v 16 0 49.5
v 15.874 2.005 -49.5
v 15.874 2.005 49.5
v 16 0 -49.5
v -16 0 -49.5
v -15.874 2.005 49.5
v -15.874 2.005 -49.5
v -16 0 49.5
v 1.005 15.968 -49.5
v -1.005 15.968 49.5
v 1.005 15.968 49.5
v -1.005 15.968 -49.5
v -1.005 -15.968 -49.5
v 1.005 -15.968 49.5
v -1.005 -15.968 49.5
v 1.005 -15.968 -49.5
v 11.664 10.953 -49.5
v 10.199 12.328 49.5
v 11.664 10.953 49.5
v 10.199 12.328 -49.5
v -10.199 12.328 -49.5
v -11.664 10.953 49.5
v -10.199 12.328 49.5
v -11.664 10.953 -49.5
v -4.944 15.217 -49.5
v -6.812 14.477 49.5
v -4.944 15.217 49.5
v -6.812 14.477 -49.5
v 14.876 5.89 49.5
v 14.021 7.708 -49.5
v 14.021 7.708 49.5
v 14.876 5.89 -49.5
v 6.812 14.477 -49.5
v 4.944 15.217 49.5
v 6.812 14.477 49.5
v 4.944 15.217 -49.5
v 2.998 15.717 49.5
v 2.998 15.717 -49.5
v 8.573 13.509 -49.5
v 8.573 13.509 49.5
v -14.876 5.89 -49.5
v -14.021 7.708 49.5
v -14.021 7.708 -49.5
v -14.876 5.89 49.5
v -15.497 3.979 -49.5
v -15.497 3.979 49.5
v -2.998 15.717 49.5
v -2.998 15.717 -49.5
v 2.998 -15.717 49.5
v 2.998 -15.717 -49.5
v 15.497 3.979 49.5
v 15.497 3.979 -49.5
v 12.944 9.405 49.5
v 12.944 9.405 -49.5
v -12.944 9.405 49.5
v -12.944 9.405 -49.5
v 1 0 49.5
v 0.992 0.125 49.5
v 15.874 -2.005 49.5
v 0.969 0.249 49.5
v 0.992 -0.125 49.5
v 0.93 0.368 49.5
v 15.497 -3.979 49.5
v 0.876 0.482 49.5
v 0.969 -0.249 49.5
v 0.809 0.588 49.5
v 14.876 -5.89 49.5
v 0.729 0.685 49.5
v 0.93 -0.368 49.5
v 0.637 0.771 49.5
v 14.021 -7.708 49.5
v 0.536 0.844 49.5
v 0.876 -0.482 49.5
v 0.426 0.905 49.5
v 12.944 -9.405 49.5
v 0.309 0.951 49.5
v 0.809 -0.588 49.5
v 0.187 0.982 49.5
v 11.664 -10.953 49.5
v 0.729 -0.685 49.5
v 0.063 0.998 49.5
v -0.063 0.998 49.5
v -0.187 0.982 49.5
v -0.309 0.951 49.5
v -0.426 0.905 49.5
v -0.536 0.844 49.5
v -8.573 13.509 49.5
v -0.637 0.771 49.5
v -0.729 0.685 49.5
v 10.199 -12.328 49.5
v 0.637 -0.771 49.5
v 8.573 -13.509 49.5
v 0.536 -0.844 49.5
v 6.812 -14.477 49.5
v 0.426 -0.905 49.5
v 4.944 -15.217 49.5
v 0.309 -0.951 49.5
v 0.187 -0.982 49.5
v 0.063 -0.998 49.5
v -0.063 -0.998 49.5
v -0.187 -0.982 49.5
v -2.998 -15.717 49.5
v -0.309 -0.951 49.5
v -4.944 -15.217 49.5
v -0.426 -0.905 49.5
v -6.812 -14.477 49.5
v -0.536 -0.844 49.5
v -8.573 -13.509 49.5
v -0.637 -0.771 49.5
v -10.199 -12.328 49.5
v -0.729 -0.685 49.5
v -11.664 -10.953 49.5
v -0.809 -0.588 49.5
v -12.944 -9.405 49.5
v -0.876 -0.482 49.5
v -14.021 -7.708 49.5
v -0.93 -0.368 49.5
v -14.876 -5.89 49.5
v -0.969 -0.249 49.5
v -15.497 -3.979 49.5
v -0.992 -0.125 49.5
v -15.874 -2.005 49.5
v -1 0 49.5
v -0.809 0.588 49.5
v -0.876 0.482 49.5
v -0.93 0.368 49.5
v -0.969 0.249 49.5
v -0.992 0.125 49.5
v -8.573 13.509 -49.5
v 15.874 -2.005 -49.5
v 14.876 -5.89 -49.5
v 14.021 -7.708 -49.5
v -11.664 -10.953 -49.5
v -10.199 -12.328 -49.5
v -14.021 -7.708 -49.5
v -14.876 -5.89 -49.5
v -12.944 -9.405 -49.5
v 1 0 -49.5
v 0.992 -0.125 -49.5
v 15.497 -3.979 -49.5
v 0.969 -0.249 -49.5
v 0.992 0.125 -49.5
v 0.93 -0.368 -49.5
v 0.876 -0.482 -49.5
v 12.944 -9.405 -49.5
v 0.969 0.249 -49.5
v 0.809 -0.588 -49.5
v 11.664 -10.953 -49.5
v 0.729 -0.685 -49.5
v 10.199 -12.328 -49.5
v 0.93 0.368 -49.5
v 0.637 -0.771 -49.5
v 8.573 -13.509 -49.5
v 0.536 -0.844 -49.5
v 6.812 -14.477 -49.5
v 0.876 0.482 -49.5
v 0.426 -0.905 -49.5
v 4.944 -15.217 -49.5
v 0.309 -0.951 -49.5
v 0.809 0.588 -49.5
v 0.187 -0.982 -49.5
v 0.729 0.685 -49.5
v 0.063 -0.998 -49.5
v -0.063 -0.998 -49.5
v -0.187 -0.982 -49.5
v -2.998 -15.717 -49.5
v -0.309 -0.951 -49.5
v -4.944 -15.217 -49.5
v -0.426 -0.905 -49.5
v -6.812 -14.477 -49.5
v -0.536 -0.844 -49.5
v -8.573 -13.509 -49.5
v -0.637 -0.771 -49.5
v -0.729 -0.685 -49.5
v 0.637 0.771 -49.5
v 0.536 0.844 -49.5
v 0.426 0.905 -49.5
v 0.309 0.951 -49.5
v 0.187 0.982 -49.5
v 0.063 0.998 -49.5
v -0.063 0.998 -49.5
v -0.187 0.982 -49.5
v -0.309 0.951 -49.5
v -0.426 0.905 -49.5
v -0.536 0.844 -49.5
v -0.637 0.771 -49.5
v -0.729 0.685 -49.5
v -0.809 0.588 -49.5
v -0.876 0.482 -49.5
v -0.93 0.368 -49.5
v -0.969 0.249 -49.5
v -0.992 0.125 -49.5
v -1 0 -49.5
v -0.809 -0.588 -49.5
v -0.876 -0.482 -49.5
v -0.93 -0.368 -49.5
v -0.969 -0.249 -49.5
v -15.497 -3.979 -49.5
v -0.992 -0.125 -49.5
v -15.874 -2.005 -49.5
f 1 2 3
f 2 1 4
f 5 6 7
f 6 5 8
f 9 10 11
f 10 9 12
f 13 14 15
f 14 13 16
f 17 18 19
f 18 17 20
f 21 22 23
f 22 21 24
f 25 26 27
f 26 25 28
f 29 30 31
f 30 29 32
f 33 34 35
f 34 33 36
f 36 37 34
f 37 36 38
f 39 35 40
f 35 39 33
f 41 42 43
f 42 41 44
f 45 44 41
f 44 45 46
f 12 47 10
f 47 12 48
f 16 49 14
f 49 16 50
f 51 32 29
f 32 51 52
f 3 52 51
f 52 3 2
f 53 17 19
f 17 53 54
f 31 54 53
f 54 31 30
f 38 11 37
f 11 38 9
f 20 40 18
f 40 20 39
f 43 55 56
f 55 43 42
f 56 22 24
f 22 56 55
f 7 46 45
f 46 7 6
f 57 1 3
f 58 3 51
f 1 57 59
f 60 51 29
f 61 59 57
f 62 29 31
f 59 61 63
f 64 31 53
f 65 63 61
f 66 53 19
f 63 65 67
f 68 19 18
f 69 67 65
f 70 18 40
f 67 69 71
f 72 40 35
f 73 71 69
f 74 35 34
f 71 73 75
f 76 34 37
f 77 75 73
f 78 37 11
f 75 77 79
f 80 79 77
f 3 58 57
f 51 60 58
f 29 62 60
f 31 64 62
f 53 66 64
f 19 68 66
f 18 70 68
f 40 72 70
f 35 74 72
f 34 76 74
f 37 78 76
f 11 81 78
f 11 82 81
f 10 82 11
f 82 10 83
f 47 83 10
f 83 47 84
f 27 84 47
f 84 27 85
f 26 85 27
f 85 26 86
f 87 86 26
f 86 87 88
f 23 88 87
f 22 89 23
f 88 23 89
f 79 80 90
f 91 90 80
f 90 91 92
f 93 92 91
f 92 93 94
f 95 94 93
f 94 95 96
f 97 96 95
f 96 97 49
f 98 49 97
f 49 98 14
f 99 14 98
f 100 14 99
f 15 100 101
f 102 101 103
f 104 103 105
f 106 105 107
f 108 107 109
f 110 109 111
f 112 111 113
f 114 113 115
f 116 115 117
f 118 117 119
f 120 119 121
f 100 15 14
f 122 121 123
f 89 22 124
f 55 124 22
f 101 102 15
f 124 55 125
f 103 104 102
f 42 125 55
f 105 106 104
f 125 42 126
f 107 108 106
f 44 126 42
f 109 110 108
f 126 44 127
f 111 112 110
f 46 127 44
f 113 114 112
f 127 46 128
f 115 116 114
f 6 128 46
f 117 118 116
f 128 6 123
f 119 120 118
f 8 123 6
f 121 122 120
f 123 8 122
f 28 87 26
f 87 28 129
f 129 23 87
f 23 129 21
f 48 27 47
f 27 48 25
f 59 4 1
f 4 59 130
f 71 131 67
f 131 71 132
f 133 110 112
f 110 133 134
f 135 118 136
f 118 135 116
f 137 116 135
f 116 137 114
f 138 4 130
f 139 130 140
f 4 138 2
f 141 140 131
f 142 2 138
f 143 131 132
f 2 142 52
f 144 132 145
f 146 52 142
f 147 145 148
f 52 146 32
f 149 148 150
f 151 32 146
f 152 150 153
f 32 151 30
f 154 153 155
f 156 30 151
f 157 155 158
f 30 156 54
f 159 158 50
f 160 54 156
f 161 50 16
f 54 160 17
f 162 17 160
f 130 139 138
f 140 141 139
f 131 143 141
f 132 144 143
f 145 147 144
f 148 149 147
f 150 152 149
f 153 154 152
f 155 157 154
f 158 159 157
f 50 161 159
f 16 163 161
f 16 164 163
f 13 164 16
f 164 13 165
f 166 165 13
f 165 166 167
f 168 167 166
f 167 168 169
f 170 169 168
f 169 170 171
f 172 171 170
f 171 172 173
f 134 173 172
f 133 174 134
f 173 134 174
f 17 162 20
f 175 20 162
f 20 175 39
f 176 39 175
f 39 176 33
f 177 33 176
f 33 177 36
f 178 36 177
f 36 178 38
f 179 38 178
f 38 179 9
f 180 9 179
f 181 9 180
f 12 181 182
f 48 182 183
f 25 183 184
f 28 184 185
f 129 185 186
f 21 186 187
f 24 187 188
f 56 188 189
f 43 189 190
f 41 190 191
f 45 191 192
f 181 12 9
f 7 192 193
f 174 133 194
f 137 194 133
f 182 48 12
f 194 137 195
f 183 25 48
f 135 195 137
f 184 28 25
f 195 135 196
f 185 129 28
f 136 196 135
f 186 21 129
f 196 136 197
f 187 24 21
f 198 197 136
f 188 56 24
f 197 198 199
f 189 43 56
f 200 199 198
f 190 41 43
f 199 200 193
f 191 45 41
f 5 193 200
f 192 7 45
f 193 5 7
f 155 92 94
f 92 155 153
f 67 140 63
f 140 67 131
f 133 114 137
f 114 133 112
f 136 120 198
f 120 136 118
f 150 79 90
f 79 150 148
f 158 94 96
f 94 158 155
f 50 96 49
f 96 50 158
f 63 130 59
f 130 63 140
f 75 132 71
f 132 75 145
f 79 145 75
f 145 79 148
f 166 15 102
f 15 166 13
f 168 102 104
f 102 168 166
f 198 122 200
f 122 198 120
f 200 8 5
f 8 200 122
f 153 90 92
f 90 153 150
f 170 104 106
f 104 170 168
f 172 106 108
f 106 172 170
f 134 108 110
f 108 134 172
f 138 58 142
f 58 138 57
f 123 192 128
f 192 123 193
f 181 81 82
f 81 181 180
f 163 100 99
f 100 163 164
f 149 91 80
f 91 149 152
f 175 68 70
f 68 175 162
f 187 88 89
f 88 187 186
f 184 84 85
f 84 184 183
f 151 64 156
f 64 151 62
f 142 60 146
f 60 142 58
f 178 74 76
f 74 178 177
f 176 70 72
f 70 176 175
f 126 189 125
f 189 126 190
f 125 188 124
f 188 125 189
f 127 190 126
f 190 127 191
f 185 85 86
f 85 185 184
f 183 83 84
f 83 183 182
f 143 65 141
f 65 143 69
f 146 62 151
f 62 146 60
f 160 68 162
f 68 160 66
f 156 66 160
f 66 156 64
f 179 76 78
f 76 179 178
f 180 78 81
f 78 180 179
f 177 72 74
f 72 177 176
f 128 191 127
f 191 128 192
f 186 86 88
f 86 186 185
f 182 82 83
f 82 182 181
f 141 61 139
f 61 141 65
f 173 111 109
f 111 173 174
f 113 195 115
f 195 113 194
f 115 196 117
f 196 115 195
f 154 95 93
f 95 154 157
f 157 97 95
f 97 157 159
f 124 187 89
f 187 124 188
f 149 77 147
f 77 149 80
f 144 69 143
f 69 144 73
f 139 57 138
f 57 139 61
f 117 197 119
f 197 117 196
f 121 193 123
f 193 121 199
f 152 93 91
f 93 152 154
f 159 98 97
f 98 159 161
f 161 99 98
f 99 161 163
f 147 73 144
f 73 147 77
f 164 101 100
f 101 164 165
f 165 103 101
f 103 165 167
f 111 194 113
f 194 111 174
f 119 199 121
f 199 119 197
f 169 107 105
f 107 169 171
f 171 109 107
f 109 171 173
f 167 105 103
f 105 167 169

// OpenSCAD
$fn = 50;


difference() {
	union() {
		translate(v = [0, 0, -49.5000000000]) {
			cylinder(h = 99, r = 16.0000000000);
		}
	}
	union() {
		translate(v = [0, 0, -100.0000000000]) {
			cylinder(h = 200, r = 1.0000000000);
		}
	}
}
